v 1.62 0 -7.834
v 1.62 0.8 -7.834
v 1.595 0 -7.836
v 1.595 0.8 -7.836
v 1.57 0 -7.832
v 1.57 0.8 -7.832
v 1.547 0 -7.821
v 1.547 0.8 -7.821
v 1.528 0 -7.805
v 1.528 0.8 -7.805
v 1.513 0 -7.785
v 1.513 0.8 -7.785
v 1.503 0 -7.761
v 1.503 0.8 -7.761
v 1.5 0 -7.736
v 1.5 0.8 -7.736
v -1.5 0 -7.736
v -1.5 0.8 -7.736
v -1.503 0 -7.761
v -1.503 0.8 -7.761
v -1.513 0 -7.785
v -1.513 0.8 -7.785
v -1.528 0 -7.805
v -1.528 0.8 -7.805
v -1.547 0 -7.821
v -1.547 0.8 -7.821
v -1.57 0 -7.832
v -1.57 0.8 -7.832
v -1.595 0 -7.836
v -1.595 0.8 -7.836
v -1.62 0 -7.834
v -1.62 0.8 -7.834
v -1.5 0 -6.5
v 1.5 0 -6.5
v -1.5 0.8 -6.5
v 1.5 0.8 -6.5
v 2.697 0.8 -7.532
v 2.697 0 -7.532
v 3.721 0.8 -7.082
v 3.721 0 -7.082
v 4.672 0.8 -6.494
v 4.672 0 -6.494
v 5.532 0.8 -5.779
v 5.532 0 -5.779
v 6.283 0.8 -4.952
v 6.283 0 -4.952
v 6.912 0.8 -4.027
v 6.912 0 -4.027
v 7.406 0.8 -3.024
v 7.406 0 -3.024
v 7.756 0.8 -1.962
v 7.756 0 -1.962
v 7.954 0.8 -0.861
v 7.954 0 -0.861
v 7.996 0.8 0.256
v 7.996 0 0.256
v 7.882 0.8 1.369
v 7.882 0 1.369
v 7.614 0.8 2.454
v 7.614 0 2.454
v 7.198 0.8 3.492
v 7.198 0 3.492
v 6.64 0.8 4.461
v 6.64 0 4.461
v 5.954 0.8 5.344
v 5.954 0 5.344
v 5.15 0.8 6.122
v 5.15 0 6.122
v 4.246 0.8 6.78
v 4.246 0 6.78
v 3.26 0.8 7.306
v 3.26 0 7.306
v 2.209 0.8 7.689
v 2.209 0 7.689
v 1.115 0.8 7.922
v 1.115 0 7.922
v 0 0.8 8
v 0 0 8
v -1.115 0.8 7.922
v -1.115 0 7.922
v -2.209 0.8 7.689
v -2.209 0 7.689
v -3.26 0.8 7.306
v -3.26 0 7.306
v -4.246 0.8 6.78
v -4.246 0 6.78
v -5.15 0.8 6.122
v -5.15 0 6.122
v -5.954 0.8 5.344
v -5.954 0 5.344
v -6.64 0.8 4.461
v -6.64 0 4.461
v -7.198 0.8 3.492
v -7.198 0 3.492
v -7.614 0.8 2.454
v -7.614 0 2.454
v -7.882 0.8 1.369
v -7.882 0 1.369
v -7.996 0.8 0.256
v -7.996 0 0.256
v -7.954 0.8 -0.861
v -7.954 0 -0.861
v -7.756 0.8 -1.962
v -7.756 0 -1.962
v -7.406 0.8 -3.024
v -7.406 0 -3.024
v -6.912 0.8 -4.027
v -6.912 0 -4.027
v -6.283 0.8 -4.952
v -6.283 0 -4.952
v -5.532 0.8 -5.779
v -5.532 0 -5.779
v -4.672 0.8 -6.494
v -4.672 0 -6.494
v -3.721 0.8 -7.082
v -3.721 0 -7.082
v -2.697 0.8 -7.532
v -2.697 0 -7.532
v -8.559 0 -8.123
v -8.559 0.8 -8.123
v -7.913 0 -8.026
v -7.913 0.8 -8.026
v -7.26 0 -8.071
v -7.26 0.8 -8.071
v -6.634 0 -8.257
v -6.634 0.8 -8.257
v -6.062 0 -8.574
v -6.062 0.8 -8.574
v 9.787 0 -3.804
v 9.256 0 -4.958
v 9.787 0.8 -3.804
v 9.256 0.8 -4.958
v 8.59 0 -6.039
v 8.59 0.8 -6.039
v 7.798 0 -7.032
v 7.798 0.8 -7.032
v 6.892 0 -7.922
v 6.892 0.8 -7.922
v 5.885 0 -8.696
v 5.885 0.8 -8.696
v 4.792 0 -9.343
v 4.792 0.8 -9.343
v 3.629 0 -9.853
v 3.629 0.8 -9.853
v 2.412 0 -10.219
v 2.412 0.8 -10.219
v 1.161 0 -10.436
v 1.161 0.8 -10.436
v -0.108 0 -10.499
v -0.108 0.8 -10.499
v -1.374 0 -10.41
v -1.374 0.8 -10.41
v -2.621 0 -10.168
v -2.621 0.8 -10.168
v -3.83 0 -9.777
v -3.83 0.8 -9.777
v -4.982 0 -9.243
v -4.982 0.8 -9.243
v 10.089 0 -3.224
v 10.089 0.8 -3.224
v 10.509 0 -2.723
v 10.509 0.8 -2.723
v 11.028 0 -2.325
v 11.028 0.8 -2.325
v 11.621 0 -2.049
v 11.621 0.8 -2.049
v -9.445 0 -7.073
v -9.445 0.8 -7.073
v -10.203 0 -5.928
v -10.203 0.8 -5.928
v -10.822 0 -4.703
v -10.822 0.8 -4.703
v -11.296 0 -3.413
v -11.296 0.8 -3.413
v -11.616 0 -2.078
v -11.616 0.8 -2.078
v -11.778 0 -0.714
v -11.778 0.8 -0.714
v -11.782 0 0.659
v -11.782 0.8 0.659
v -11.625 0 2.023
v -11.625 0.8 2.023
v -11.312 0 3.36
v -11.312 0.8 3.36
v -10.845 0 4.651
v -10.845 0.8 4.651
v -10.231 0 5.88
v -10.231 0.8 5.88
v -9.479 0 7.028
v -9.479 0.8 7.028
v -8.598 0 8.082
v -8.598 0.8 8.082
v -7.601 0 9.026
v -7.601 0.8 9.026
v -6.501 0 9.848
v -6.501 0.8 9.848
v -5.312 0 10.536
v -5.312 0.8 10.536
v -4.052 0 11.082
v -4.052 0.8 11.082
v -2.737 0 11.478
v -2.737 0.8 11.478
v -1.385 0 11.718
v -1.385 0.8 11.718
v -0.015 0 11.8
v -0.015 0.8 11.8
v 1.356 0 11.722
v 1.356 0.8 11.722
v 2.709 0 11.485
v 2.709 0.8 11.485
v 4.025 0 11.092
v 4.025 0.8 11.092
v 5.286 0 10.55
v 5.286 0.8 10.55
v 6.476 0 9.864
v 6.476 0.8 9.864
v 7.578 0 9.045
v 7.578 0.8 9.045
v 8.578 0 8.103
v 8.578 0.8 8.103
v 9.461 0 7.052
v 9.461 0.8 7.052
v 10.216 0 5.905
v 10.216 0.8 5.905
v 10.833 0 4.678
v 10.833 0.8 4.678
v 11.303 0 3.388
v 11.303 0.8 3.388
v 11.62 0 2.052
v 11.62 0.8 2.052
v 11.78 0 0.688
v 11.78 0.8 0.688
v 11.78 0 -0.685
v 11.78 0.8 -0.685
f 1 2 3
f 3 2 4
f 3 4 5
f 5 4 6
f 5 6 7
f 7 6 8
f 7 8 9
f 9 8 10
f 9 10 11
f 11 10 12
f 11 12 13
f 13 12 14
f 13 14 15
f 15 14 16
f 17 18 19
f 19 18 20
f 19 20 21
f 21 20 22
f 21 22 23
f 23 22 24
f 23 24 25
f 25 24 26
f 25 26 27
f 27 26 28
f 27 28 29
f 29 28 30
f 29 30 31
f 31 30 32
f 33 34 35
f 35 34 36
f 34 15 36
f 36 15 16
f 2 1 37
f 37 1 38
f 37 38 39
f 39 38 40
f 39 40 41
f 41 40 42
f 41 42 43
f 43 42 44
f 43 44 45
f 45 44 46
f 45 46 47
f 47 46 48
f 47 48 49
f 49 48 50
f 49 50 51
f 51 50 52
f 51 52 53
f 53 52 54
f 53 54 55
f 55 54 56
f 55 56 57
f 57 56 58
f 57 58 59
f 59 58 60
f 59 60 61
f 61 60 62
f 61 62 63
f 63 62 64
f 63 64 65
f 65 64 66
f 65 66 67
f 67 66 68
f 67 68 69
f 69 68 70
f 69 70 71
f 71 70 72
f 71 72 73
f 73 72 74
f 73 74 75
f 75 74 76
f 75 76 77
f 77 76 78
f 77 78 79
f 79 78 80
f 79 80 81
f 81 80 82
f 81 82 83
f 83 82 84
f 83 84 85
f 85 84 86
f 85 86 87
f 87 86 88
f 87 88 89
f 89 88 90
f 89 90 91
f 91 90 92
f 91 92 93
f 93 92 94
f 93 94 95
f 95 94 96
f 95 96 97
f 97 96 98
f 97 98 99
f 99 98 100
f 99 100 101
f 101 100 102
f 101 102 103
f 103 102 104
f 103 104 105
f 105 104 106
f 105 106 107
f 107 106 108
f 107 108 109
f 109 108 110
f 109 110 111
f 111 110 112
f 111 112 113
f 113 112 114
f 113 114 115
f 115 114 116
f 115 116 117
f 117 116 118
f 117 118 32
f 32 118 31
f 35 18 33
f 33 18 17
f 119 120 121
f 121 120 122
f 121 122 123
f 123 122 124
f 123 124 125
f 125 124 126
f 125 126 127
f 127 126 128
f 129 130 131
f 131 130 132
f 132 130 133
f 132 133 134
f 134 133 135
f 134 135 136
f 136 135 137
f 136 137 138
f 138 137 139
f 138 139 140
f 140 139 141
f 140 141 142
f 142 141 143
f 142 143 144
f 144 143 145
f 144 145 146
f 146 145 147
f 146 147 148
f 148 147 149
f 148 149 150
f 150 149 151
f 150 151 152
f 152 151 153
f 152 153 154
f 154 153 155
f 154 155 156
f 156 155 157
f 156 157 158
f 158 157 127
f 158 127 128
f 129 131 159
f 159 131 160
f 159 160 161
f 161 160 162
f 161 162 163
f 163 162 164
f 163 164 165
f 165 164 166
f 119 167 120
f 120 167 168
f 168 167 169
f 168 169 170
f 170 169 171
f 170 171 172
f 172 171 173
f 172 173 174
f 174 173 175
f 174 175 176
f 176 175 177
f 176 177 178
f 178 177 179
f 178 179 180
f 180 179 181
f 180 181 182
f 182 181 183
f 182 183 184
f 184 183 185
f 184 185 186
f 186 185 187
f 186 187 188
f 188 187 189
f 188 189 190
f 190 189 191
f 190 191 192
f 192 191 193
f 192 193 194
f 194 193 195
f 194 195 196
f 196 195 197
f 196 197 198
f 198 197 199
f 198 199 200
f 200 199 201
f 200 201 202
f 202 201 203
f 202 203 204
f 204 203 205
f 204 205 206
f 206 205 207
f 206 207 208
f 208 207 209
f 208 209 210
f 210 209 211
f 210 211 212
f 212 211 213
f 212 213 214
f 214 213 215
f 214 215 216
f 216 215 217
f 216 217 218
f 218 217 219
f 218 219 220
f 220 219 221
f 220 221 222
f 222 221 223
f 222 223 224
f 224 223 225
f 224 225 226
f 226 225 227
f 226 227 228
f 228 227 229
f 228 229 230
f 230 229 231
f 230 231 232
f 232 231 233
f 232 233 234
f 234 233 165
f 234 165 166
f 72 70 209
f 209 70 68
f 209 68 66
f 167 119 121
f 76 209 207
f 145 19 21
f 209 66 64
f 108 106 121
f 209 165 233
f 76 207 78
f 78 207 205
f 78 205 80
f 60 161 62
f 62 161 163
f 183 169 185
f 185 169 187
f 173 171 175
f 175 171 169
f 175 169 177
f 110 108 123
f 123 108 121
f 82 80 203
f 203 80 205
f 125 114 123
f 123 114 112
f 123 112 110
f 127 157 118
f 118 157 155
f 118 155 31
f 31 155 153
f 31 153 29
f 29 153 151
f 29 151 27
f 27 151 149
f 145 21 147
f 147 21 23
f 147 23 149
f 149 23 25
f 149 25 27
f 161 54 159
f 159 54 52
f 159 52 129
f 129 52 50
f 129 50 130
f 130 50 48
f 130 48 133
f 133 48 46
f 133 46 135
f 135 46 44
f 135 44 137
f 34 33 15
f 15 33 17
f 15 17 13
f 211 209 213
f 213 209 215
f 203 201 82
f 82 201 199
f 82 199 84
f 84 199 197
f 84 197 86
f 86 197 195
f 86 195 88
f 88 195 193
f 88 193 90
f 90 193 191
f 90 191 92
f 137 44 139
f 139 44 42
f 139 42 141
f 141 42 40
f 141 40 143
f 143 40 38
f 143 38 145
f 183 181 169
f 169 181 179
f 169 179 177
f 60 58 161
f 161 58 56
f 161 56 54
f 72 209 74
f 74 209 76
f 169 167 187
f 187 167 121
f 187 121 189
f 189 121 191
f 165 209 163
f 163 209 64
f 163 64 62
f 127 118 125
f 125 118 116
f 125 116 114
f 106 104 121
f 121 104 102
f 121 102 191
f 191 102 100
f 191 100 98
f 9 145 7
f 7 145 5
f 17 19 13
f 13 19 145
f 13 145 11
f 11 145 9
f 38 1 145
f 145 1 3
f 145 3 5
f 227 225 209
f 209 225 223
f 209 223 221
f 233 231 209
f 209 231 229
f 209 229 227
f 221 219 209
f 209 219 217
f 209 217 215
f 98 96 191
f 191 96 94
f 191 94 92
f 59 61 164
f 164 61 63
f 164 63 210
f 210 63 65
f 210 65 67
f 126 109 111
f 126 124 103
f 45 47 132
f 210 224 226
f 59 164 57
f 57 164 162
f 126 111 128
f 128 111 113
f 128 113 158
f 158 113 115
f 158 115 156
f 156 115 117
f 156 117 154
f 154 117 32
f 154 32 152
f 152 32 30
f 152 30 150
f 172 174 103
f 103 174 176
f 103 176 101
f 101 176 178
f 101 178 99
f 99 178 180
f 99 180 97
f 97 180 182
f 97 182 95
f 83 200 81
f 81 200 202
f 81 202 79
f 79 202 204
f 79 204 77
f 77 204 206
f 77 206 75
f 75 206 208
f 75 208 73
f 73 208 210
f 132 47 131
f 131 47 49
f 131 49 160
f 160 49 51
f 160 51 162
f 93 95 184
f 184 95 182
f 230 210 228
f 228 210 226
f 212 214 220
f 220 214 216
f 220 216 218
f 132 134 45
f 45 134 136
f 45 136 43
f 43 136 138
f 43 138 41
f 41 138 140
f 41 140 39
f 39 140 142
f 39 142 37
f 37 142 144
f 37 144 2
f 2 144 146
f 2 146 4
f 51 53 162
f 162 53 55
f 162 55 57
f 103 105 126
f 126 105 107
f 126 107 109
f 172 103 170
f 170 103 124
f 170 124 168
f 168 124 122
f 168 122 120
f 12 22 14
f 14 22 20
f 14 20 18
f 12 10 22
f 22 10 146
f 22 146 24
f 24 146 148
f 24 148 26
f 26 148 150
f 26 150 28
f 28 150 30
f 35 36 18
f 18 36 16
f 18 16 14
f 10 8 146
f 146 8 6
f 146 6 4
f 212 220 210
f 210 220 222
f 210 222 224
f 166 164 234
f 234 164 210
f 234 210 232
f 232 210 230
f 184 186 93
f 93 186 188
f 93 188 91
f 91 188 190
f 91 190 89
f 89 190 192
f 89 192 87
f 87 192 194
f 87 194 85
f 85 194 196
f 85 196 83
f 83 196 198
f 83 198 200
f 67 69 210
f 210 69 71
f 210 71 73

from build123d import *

# Parameters (mm, degrees)
BOSS_EXTRUDE1_DEPTH = 0.8
FILLET1_R           = 0.1


with BuildPart() as part:
    # Sketch1 → Boss-Extrude1 (new body)
    with BuildSketch(Plane(origin=(0, 0, 0), x_dir=(1, 0, 0), z_dir=(0, 1, 0))):
        with BuildLine():
            ThreePointArc((9.786805864, 3.803739078), (3.026060815, 10.054499288), (-6.061654374, 8.573584213))
            ThreePointArc((-6.061654374, 8.573584213), (-7.260490637, 8.07091926), (-8.559417578, 8.122583993))
            ThreePointArc((-8.559417578, 8.122583993), (-3.400715964, -11.299342057), (11.620731486, 2.049048496))
            ThreePointArc((11.620731486, 2.049048496), (10.509059049, 2.722891827), (9.786805864, 3.803739078))
        make_face()
        with BuildLine():
            Line((-1.5, 6.5), (1.5, 6.5))
            Line((1.5, 6.5), (1.5, 7.858116823))
            ThreePointArc((1.5, 7.858116823), (0, -8), (-1.5, 7.858116823))
            Line((-1.5, 7.858116823), (-1.5, 6.5))
        make_face(mode=Mode.SUBTRACT)
    extrude(amount=BOSS_EXTRUDE1_DEPTH)

    # Fillet1
    fillet1_edges = [part.edges().sort_by_distance(p)[0] for p in [
        (-1.5, 0.4, -7.858116823),
        (1.5, 0.4, -7.858116823),
    ]]
    fillet(fillet1_edges, radius=FILLET1_R)


solid = part.part
